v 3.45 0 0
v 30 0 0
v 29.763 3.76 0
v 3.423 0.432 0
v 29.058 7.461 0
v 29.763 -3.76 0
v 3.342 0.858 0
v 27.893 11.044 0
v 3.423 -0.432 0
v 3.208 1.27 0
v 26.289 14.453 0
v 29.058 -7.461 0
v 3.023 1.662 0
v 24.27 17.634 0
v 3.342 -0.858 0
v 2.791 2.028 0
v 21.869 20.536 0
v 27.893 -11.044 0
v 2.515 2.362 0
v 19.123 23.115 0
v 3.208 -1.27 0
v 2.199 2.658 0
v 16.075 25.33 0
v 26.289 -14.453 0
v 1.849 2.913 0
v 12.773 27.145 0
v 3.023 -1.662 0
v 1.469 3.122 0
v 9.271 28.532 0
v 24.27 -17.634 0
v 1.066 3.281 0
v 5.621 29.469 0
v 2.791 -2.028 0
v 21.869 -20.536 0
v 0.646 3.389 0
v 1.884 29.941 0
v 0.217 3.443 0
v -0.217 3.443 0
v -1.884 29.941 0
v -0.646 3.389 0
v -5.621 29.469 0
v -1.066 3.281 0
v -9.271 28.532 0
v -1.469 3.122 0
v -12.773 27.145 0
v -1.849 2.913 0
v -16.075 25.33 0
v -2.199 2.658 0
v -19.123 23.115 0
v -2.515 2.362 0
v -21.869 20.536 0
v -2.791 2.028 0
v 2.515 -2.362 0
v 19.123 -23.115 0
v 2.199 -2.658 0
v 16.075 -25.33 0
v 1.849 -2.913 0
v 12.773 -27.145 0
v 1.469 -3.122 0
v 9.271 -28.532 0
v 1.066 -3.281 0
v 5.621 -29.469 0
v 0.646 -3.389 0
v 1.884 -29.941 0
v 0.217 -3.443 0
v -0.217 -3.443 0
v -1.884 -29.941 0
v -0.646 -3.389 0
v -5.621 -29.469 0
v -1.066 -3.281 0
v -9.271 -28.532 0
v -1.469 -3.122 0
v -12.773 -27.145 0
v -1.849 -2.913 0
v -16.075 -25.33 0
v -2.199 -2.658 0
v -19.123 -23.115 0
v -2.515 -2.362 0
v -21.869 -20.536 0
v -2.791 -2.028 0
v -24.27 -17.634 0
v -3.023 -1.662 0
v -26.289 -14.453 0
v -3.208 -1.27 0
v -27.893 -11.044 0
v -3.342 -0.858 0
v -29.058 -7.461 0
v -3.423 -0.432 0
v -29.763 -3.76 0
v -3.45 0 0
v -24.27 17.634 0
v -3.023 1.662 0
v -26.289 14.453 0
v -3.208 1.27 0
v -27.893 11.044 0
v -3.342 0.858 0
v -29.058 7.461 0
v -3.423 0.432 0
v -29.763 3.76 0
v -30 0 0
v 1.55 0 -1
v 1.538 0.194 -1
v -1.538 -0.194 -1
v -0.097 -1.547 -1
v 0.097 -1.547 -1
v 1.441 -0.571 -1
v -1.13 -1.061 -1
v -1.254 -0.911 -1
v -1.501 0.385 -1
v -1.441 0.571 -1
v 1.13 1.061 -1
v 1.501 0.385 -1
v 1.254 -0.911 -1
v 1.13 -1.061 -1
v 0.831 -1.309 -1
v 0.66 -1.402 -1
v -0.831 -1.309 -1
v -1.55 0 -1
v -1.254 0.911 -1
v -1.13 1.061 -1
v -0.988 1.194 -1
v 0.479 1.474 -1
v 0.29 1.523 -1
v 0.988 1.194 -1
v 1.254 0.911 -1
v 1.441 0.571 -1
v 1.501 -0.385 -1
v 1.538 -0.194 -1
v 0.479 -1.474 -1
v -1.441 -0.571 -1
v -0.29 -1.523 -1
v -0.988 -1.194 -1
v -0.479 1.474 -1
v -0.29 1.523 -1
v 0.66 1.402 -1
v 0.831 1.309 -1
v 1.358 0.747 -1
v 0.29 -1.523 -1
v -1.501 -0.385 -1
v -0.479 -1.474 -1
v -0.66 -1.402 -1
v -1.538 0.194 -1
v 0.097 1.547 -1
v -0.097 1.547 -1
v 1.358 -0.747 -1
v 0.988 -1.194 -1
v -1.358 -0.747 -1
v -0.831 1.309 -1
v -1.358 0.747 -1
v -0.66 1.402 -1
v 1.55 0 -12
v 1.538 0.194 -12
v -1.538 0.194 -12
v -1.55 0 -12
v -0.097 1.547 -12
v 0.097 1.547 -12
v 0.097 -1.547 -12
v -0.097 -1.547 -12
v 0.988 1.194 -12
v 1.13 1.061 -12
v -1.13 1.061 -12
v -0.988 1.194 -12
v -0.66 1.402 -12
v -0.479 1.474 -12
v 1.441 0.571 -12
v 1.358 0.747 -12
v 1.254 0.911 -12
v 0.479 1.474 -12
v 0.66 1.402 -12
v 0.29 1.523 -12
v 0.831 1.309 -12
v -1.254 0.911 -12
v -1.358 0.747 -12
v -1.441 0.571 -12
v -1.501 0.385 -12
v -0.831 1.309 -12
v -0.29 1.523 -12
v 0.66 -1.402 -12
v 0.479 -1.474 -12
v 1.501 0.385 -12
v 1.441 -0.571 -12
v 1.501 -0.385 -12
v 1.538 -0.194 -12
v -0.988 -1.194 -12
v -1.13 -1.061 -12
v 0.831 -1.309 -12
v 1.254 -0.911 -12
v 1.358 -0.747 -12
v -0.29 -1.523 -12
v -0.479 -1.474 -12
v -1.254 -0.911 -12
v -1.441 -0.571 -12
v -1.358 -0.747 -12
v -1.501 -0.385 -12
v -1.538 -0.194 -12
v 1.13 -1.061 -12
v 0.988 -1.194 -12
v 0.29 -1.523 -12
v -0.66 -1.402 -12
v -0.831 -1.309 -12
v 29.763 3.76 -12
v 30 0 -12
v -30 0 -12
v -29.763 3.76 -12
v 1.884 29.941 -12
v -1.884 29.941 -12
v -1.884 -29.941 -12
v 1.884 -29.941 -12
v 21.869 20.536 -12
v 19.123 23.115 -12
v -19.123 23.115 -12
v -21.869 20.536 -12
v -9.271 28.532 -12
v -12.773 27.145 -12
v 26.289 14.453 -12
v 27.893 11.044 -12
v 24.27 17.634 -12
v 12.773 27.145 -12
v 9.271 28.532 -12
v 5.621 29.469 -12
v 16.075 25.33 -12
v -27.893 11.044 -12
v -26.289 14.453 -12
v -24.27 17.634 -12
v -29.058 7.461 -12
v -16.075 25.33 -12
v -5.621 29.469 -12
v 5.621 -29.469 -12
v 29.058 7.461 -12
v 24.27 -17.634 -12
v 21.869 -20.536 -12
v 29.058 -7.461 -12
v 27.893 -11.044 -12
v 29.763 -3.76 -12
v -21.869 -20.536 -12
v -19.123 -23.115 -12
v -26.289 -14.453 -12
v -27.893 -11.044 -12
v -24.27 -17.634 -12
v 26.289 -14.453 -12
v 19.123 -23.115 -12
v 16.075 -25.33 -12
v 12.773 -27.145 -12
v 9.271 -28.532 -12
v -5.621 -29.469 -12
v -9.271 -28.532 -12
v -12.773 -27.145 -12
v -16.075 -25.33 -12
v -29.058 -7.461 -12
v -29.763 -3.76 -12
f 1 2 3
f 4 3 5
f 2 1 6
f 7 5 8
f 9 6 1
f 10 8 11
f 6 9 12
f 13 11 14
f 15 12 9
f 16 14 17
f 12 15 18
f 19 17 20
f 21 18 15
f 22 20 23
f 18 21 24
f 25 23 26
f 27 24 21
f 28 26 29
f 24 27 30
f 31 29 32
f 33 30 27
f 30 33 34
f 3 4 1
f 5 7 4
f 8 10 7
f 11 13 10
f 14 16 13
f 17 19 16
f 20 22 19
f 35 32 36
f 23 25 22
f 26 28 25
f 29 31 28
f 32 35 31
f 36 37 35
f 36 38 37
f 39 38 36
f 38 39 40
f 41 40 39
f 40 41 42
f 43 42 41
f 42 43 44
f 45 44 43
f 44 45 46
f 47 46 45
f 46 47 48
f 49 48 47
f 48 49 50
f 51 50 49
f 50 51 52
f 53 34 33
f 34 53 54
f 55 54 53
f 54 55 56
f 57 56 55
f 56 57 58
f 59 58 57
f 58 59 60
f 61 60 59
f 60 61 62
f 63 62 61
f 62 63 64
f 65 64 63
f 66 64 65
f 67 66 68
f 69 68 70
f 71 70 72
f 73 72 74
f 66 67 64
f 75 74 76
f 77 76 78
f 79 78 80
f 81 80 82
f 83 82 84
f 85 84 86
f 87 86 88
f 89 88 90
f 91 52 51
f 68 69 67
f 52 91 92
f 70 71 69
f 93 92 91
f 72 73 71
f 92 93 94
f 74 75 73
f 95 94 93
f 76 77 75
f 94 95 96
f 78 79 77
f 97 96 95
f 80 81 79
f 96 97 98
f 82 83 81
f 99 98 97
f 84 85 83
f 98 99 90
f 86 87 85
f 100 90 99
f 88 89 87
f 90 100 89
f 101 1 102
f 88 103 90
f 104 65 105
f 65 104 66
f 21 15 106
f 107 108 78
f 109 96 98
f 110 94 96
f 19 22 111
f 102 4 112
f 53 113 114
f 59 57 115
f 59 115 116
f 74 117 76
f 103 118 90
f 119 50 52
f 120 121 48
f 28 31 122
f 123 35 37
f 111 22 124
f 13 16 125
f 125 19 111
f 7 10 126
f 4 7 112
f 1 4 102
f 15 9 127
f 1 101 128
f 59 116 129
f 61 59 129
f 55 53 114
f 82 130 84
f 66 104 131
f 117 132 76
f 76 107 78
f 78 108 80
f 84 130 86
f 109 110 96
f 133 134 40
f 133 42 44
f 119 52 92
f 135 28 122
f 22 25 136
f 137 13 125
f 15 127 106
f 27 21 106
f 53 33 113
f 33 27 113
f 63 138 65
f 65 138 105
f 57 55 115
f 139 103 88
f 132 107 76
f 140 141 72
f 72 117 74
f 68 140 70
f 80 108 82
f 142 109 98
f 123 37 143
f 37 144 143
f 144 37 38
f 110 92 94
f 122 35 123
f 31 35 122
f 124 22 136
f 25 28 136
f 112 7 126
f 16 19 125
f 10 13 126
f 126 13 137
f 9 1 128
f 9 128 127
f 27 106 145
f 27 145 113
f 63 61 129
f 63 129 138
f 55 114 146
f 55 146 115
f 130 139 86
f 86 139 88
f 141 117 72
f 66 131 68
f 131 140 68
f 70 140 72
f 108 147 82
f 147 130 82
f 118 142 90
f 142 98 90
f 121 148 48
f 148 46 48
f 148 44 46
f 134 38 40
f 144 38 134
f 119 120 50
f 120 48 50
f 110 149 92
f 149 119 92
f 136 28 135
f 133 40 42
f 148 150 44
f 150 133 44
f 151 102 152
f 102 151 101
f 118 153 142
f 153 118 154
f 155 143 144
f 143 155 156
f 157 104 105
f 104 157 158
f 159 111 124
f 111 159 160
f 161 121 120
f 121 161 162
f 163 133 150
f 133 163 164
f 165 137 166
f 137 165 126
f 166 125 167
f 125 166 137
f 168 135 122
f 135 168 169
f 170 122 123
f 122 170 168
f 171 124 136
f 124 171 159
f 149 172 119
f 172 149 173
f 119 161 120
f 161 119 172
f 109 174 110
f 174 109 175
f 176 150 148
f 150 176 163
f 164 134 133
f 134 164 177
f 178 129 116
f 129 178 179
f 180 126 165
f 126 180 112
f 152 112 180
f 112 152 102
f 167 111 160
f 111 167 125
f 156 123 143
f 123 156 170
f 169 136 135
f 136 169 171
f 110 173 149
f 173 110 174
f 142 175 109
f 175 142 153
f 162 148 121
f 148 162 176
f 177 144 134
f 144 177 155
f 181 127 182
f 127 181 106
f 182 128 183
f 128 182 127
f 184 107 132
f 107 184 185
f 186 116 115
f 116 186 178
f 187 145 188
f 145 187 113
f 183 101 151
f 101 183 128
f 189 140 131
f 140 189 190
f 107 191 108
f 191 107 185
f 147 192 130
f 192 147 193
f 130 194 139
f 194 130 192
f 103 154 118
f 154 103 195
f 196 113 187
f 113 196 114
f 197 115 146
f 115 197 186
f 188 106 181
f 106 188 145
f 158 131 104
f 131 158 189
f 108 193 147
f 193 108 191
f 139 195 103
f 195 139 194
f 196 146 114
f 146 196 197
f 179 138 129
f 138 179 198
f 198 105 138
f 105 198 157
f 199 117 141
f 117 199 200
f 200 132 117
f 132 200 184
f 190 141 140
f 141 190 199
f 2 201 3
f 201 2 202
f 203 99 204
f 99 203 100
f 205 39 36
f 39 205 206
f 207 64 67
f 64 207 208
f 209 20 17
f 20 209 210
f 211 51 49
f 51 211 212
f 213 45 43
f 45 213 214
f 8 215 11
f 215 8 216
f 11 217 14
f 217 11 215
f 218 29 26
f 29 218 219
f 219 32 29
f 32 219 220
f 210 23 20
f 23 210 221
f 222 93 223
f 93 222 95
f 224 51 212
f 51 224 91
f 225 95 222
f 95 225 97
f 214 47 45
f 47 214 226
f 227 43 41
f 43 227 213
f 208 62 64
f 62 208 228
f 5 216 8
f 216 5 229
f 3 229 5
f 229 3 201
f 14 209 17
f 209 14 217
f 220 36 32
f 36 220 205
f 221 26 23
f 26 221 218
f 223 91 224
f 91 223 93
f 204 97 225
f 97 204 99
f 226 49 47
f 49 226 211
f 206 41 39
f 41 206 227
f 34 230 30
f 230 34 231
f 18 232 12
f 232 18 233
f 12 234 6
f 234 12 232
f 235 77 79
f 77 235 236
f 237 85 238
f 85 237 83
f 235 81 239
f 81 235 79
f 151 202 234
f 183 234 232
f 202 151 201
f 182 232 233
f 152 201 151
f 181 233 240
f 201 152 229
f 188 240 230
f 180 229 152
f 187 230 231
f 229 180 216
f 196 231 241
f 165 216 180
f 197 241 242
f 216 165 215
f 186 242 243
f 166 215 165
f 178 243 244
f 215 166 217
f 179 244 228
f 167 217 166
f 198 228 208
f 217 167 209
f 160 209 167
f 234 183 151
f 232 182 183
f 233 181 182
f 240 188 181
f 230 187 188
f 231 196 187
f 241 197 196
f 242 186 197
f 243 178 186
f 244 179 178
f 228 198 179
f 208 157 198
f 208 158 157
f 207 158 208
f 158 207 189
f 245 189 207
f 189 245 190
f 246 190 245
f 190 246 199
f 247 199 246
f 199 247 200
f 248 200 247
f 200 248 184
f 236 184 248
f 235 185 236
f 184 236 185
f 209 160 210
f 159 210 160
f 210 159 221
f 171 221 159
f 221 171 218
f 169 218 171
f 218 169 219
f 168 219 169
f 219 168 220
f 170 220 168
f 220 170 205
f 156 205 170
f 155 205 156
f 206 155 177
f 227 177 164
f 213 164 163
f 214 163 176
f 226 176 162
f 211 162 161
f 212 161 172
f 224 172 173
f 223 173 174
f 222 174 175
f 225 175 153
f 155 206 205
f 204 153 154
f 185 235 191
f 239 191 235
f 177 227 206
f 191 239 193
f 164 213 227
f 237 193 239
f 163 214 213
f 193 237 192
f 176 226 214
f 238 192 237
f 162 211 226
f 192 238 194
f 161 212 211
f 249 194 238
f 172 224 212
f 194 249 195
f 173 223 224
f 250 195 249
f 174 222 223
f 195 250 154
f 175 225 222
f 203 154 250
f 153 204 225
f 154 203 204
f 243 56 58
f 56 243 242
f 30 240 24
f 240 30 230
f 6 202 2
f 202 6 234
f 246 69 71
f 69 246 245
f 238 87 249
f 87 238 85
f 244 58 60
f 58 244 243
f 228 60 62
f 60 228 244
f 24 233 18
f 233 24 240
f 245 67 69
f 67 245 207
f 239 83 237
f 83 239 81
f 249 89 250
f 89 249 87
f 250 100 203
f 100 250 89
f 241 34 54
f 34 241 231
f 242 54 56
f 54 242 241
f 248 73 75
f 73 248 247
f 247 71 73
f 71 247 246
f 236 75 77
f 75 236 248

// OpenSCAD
$fn = 50;


difference() {
	union() {
		translate(v = [0, 0, -12.0000000000]) {
			cylinder(h = 12, r = 30.0000000000);
		}
	}
	union() {
		translate(v = [0, 0, 0]) {
			rotate(a = [0, 0, 0]) {
				difference() {
					union() {
						translate(v = [0, 0, -15.0000000000]) {
							cylinder(h = 15, r = 1.2500000000);
						}
						translate(v = [0, 0, -1.0000000000]) {
							cylinder(h = 1.0000000000, r1 = 1.5500000000, r2 = 3.4500000000);
						}
						translate(v = [0, 0, -15.0000000000]) {
							cylinder(h = 15, r = 1.5500000000);
						}
						translate(v = [0, 0, -15.0000000000]) {
							cylinder(h = 15, r = 1.2500000000);
						}
					}
					union();
				}
			}
		}
	}
}
